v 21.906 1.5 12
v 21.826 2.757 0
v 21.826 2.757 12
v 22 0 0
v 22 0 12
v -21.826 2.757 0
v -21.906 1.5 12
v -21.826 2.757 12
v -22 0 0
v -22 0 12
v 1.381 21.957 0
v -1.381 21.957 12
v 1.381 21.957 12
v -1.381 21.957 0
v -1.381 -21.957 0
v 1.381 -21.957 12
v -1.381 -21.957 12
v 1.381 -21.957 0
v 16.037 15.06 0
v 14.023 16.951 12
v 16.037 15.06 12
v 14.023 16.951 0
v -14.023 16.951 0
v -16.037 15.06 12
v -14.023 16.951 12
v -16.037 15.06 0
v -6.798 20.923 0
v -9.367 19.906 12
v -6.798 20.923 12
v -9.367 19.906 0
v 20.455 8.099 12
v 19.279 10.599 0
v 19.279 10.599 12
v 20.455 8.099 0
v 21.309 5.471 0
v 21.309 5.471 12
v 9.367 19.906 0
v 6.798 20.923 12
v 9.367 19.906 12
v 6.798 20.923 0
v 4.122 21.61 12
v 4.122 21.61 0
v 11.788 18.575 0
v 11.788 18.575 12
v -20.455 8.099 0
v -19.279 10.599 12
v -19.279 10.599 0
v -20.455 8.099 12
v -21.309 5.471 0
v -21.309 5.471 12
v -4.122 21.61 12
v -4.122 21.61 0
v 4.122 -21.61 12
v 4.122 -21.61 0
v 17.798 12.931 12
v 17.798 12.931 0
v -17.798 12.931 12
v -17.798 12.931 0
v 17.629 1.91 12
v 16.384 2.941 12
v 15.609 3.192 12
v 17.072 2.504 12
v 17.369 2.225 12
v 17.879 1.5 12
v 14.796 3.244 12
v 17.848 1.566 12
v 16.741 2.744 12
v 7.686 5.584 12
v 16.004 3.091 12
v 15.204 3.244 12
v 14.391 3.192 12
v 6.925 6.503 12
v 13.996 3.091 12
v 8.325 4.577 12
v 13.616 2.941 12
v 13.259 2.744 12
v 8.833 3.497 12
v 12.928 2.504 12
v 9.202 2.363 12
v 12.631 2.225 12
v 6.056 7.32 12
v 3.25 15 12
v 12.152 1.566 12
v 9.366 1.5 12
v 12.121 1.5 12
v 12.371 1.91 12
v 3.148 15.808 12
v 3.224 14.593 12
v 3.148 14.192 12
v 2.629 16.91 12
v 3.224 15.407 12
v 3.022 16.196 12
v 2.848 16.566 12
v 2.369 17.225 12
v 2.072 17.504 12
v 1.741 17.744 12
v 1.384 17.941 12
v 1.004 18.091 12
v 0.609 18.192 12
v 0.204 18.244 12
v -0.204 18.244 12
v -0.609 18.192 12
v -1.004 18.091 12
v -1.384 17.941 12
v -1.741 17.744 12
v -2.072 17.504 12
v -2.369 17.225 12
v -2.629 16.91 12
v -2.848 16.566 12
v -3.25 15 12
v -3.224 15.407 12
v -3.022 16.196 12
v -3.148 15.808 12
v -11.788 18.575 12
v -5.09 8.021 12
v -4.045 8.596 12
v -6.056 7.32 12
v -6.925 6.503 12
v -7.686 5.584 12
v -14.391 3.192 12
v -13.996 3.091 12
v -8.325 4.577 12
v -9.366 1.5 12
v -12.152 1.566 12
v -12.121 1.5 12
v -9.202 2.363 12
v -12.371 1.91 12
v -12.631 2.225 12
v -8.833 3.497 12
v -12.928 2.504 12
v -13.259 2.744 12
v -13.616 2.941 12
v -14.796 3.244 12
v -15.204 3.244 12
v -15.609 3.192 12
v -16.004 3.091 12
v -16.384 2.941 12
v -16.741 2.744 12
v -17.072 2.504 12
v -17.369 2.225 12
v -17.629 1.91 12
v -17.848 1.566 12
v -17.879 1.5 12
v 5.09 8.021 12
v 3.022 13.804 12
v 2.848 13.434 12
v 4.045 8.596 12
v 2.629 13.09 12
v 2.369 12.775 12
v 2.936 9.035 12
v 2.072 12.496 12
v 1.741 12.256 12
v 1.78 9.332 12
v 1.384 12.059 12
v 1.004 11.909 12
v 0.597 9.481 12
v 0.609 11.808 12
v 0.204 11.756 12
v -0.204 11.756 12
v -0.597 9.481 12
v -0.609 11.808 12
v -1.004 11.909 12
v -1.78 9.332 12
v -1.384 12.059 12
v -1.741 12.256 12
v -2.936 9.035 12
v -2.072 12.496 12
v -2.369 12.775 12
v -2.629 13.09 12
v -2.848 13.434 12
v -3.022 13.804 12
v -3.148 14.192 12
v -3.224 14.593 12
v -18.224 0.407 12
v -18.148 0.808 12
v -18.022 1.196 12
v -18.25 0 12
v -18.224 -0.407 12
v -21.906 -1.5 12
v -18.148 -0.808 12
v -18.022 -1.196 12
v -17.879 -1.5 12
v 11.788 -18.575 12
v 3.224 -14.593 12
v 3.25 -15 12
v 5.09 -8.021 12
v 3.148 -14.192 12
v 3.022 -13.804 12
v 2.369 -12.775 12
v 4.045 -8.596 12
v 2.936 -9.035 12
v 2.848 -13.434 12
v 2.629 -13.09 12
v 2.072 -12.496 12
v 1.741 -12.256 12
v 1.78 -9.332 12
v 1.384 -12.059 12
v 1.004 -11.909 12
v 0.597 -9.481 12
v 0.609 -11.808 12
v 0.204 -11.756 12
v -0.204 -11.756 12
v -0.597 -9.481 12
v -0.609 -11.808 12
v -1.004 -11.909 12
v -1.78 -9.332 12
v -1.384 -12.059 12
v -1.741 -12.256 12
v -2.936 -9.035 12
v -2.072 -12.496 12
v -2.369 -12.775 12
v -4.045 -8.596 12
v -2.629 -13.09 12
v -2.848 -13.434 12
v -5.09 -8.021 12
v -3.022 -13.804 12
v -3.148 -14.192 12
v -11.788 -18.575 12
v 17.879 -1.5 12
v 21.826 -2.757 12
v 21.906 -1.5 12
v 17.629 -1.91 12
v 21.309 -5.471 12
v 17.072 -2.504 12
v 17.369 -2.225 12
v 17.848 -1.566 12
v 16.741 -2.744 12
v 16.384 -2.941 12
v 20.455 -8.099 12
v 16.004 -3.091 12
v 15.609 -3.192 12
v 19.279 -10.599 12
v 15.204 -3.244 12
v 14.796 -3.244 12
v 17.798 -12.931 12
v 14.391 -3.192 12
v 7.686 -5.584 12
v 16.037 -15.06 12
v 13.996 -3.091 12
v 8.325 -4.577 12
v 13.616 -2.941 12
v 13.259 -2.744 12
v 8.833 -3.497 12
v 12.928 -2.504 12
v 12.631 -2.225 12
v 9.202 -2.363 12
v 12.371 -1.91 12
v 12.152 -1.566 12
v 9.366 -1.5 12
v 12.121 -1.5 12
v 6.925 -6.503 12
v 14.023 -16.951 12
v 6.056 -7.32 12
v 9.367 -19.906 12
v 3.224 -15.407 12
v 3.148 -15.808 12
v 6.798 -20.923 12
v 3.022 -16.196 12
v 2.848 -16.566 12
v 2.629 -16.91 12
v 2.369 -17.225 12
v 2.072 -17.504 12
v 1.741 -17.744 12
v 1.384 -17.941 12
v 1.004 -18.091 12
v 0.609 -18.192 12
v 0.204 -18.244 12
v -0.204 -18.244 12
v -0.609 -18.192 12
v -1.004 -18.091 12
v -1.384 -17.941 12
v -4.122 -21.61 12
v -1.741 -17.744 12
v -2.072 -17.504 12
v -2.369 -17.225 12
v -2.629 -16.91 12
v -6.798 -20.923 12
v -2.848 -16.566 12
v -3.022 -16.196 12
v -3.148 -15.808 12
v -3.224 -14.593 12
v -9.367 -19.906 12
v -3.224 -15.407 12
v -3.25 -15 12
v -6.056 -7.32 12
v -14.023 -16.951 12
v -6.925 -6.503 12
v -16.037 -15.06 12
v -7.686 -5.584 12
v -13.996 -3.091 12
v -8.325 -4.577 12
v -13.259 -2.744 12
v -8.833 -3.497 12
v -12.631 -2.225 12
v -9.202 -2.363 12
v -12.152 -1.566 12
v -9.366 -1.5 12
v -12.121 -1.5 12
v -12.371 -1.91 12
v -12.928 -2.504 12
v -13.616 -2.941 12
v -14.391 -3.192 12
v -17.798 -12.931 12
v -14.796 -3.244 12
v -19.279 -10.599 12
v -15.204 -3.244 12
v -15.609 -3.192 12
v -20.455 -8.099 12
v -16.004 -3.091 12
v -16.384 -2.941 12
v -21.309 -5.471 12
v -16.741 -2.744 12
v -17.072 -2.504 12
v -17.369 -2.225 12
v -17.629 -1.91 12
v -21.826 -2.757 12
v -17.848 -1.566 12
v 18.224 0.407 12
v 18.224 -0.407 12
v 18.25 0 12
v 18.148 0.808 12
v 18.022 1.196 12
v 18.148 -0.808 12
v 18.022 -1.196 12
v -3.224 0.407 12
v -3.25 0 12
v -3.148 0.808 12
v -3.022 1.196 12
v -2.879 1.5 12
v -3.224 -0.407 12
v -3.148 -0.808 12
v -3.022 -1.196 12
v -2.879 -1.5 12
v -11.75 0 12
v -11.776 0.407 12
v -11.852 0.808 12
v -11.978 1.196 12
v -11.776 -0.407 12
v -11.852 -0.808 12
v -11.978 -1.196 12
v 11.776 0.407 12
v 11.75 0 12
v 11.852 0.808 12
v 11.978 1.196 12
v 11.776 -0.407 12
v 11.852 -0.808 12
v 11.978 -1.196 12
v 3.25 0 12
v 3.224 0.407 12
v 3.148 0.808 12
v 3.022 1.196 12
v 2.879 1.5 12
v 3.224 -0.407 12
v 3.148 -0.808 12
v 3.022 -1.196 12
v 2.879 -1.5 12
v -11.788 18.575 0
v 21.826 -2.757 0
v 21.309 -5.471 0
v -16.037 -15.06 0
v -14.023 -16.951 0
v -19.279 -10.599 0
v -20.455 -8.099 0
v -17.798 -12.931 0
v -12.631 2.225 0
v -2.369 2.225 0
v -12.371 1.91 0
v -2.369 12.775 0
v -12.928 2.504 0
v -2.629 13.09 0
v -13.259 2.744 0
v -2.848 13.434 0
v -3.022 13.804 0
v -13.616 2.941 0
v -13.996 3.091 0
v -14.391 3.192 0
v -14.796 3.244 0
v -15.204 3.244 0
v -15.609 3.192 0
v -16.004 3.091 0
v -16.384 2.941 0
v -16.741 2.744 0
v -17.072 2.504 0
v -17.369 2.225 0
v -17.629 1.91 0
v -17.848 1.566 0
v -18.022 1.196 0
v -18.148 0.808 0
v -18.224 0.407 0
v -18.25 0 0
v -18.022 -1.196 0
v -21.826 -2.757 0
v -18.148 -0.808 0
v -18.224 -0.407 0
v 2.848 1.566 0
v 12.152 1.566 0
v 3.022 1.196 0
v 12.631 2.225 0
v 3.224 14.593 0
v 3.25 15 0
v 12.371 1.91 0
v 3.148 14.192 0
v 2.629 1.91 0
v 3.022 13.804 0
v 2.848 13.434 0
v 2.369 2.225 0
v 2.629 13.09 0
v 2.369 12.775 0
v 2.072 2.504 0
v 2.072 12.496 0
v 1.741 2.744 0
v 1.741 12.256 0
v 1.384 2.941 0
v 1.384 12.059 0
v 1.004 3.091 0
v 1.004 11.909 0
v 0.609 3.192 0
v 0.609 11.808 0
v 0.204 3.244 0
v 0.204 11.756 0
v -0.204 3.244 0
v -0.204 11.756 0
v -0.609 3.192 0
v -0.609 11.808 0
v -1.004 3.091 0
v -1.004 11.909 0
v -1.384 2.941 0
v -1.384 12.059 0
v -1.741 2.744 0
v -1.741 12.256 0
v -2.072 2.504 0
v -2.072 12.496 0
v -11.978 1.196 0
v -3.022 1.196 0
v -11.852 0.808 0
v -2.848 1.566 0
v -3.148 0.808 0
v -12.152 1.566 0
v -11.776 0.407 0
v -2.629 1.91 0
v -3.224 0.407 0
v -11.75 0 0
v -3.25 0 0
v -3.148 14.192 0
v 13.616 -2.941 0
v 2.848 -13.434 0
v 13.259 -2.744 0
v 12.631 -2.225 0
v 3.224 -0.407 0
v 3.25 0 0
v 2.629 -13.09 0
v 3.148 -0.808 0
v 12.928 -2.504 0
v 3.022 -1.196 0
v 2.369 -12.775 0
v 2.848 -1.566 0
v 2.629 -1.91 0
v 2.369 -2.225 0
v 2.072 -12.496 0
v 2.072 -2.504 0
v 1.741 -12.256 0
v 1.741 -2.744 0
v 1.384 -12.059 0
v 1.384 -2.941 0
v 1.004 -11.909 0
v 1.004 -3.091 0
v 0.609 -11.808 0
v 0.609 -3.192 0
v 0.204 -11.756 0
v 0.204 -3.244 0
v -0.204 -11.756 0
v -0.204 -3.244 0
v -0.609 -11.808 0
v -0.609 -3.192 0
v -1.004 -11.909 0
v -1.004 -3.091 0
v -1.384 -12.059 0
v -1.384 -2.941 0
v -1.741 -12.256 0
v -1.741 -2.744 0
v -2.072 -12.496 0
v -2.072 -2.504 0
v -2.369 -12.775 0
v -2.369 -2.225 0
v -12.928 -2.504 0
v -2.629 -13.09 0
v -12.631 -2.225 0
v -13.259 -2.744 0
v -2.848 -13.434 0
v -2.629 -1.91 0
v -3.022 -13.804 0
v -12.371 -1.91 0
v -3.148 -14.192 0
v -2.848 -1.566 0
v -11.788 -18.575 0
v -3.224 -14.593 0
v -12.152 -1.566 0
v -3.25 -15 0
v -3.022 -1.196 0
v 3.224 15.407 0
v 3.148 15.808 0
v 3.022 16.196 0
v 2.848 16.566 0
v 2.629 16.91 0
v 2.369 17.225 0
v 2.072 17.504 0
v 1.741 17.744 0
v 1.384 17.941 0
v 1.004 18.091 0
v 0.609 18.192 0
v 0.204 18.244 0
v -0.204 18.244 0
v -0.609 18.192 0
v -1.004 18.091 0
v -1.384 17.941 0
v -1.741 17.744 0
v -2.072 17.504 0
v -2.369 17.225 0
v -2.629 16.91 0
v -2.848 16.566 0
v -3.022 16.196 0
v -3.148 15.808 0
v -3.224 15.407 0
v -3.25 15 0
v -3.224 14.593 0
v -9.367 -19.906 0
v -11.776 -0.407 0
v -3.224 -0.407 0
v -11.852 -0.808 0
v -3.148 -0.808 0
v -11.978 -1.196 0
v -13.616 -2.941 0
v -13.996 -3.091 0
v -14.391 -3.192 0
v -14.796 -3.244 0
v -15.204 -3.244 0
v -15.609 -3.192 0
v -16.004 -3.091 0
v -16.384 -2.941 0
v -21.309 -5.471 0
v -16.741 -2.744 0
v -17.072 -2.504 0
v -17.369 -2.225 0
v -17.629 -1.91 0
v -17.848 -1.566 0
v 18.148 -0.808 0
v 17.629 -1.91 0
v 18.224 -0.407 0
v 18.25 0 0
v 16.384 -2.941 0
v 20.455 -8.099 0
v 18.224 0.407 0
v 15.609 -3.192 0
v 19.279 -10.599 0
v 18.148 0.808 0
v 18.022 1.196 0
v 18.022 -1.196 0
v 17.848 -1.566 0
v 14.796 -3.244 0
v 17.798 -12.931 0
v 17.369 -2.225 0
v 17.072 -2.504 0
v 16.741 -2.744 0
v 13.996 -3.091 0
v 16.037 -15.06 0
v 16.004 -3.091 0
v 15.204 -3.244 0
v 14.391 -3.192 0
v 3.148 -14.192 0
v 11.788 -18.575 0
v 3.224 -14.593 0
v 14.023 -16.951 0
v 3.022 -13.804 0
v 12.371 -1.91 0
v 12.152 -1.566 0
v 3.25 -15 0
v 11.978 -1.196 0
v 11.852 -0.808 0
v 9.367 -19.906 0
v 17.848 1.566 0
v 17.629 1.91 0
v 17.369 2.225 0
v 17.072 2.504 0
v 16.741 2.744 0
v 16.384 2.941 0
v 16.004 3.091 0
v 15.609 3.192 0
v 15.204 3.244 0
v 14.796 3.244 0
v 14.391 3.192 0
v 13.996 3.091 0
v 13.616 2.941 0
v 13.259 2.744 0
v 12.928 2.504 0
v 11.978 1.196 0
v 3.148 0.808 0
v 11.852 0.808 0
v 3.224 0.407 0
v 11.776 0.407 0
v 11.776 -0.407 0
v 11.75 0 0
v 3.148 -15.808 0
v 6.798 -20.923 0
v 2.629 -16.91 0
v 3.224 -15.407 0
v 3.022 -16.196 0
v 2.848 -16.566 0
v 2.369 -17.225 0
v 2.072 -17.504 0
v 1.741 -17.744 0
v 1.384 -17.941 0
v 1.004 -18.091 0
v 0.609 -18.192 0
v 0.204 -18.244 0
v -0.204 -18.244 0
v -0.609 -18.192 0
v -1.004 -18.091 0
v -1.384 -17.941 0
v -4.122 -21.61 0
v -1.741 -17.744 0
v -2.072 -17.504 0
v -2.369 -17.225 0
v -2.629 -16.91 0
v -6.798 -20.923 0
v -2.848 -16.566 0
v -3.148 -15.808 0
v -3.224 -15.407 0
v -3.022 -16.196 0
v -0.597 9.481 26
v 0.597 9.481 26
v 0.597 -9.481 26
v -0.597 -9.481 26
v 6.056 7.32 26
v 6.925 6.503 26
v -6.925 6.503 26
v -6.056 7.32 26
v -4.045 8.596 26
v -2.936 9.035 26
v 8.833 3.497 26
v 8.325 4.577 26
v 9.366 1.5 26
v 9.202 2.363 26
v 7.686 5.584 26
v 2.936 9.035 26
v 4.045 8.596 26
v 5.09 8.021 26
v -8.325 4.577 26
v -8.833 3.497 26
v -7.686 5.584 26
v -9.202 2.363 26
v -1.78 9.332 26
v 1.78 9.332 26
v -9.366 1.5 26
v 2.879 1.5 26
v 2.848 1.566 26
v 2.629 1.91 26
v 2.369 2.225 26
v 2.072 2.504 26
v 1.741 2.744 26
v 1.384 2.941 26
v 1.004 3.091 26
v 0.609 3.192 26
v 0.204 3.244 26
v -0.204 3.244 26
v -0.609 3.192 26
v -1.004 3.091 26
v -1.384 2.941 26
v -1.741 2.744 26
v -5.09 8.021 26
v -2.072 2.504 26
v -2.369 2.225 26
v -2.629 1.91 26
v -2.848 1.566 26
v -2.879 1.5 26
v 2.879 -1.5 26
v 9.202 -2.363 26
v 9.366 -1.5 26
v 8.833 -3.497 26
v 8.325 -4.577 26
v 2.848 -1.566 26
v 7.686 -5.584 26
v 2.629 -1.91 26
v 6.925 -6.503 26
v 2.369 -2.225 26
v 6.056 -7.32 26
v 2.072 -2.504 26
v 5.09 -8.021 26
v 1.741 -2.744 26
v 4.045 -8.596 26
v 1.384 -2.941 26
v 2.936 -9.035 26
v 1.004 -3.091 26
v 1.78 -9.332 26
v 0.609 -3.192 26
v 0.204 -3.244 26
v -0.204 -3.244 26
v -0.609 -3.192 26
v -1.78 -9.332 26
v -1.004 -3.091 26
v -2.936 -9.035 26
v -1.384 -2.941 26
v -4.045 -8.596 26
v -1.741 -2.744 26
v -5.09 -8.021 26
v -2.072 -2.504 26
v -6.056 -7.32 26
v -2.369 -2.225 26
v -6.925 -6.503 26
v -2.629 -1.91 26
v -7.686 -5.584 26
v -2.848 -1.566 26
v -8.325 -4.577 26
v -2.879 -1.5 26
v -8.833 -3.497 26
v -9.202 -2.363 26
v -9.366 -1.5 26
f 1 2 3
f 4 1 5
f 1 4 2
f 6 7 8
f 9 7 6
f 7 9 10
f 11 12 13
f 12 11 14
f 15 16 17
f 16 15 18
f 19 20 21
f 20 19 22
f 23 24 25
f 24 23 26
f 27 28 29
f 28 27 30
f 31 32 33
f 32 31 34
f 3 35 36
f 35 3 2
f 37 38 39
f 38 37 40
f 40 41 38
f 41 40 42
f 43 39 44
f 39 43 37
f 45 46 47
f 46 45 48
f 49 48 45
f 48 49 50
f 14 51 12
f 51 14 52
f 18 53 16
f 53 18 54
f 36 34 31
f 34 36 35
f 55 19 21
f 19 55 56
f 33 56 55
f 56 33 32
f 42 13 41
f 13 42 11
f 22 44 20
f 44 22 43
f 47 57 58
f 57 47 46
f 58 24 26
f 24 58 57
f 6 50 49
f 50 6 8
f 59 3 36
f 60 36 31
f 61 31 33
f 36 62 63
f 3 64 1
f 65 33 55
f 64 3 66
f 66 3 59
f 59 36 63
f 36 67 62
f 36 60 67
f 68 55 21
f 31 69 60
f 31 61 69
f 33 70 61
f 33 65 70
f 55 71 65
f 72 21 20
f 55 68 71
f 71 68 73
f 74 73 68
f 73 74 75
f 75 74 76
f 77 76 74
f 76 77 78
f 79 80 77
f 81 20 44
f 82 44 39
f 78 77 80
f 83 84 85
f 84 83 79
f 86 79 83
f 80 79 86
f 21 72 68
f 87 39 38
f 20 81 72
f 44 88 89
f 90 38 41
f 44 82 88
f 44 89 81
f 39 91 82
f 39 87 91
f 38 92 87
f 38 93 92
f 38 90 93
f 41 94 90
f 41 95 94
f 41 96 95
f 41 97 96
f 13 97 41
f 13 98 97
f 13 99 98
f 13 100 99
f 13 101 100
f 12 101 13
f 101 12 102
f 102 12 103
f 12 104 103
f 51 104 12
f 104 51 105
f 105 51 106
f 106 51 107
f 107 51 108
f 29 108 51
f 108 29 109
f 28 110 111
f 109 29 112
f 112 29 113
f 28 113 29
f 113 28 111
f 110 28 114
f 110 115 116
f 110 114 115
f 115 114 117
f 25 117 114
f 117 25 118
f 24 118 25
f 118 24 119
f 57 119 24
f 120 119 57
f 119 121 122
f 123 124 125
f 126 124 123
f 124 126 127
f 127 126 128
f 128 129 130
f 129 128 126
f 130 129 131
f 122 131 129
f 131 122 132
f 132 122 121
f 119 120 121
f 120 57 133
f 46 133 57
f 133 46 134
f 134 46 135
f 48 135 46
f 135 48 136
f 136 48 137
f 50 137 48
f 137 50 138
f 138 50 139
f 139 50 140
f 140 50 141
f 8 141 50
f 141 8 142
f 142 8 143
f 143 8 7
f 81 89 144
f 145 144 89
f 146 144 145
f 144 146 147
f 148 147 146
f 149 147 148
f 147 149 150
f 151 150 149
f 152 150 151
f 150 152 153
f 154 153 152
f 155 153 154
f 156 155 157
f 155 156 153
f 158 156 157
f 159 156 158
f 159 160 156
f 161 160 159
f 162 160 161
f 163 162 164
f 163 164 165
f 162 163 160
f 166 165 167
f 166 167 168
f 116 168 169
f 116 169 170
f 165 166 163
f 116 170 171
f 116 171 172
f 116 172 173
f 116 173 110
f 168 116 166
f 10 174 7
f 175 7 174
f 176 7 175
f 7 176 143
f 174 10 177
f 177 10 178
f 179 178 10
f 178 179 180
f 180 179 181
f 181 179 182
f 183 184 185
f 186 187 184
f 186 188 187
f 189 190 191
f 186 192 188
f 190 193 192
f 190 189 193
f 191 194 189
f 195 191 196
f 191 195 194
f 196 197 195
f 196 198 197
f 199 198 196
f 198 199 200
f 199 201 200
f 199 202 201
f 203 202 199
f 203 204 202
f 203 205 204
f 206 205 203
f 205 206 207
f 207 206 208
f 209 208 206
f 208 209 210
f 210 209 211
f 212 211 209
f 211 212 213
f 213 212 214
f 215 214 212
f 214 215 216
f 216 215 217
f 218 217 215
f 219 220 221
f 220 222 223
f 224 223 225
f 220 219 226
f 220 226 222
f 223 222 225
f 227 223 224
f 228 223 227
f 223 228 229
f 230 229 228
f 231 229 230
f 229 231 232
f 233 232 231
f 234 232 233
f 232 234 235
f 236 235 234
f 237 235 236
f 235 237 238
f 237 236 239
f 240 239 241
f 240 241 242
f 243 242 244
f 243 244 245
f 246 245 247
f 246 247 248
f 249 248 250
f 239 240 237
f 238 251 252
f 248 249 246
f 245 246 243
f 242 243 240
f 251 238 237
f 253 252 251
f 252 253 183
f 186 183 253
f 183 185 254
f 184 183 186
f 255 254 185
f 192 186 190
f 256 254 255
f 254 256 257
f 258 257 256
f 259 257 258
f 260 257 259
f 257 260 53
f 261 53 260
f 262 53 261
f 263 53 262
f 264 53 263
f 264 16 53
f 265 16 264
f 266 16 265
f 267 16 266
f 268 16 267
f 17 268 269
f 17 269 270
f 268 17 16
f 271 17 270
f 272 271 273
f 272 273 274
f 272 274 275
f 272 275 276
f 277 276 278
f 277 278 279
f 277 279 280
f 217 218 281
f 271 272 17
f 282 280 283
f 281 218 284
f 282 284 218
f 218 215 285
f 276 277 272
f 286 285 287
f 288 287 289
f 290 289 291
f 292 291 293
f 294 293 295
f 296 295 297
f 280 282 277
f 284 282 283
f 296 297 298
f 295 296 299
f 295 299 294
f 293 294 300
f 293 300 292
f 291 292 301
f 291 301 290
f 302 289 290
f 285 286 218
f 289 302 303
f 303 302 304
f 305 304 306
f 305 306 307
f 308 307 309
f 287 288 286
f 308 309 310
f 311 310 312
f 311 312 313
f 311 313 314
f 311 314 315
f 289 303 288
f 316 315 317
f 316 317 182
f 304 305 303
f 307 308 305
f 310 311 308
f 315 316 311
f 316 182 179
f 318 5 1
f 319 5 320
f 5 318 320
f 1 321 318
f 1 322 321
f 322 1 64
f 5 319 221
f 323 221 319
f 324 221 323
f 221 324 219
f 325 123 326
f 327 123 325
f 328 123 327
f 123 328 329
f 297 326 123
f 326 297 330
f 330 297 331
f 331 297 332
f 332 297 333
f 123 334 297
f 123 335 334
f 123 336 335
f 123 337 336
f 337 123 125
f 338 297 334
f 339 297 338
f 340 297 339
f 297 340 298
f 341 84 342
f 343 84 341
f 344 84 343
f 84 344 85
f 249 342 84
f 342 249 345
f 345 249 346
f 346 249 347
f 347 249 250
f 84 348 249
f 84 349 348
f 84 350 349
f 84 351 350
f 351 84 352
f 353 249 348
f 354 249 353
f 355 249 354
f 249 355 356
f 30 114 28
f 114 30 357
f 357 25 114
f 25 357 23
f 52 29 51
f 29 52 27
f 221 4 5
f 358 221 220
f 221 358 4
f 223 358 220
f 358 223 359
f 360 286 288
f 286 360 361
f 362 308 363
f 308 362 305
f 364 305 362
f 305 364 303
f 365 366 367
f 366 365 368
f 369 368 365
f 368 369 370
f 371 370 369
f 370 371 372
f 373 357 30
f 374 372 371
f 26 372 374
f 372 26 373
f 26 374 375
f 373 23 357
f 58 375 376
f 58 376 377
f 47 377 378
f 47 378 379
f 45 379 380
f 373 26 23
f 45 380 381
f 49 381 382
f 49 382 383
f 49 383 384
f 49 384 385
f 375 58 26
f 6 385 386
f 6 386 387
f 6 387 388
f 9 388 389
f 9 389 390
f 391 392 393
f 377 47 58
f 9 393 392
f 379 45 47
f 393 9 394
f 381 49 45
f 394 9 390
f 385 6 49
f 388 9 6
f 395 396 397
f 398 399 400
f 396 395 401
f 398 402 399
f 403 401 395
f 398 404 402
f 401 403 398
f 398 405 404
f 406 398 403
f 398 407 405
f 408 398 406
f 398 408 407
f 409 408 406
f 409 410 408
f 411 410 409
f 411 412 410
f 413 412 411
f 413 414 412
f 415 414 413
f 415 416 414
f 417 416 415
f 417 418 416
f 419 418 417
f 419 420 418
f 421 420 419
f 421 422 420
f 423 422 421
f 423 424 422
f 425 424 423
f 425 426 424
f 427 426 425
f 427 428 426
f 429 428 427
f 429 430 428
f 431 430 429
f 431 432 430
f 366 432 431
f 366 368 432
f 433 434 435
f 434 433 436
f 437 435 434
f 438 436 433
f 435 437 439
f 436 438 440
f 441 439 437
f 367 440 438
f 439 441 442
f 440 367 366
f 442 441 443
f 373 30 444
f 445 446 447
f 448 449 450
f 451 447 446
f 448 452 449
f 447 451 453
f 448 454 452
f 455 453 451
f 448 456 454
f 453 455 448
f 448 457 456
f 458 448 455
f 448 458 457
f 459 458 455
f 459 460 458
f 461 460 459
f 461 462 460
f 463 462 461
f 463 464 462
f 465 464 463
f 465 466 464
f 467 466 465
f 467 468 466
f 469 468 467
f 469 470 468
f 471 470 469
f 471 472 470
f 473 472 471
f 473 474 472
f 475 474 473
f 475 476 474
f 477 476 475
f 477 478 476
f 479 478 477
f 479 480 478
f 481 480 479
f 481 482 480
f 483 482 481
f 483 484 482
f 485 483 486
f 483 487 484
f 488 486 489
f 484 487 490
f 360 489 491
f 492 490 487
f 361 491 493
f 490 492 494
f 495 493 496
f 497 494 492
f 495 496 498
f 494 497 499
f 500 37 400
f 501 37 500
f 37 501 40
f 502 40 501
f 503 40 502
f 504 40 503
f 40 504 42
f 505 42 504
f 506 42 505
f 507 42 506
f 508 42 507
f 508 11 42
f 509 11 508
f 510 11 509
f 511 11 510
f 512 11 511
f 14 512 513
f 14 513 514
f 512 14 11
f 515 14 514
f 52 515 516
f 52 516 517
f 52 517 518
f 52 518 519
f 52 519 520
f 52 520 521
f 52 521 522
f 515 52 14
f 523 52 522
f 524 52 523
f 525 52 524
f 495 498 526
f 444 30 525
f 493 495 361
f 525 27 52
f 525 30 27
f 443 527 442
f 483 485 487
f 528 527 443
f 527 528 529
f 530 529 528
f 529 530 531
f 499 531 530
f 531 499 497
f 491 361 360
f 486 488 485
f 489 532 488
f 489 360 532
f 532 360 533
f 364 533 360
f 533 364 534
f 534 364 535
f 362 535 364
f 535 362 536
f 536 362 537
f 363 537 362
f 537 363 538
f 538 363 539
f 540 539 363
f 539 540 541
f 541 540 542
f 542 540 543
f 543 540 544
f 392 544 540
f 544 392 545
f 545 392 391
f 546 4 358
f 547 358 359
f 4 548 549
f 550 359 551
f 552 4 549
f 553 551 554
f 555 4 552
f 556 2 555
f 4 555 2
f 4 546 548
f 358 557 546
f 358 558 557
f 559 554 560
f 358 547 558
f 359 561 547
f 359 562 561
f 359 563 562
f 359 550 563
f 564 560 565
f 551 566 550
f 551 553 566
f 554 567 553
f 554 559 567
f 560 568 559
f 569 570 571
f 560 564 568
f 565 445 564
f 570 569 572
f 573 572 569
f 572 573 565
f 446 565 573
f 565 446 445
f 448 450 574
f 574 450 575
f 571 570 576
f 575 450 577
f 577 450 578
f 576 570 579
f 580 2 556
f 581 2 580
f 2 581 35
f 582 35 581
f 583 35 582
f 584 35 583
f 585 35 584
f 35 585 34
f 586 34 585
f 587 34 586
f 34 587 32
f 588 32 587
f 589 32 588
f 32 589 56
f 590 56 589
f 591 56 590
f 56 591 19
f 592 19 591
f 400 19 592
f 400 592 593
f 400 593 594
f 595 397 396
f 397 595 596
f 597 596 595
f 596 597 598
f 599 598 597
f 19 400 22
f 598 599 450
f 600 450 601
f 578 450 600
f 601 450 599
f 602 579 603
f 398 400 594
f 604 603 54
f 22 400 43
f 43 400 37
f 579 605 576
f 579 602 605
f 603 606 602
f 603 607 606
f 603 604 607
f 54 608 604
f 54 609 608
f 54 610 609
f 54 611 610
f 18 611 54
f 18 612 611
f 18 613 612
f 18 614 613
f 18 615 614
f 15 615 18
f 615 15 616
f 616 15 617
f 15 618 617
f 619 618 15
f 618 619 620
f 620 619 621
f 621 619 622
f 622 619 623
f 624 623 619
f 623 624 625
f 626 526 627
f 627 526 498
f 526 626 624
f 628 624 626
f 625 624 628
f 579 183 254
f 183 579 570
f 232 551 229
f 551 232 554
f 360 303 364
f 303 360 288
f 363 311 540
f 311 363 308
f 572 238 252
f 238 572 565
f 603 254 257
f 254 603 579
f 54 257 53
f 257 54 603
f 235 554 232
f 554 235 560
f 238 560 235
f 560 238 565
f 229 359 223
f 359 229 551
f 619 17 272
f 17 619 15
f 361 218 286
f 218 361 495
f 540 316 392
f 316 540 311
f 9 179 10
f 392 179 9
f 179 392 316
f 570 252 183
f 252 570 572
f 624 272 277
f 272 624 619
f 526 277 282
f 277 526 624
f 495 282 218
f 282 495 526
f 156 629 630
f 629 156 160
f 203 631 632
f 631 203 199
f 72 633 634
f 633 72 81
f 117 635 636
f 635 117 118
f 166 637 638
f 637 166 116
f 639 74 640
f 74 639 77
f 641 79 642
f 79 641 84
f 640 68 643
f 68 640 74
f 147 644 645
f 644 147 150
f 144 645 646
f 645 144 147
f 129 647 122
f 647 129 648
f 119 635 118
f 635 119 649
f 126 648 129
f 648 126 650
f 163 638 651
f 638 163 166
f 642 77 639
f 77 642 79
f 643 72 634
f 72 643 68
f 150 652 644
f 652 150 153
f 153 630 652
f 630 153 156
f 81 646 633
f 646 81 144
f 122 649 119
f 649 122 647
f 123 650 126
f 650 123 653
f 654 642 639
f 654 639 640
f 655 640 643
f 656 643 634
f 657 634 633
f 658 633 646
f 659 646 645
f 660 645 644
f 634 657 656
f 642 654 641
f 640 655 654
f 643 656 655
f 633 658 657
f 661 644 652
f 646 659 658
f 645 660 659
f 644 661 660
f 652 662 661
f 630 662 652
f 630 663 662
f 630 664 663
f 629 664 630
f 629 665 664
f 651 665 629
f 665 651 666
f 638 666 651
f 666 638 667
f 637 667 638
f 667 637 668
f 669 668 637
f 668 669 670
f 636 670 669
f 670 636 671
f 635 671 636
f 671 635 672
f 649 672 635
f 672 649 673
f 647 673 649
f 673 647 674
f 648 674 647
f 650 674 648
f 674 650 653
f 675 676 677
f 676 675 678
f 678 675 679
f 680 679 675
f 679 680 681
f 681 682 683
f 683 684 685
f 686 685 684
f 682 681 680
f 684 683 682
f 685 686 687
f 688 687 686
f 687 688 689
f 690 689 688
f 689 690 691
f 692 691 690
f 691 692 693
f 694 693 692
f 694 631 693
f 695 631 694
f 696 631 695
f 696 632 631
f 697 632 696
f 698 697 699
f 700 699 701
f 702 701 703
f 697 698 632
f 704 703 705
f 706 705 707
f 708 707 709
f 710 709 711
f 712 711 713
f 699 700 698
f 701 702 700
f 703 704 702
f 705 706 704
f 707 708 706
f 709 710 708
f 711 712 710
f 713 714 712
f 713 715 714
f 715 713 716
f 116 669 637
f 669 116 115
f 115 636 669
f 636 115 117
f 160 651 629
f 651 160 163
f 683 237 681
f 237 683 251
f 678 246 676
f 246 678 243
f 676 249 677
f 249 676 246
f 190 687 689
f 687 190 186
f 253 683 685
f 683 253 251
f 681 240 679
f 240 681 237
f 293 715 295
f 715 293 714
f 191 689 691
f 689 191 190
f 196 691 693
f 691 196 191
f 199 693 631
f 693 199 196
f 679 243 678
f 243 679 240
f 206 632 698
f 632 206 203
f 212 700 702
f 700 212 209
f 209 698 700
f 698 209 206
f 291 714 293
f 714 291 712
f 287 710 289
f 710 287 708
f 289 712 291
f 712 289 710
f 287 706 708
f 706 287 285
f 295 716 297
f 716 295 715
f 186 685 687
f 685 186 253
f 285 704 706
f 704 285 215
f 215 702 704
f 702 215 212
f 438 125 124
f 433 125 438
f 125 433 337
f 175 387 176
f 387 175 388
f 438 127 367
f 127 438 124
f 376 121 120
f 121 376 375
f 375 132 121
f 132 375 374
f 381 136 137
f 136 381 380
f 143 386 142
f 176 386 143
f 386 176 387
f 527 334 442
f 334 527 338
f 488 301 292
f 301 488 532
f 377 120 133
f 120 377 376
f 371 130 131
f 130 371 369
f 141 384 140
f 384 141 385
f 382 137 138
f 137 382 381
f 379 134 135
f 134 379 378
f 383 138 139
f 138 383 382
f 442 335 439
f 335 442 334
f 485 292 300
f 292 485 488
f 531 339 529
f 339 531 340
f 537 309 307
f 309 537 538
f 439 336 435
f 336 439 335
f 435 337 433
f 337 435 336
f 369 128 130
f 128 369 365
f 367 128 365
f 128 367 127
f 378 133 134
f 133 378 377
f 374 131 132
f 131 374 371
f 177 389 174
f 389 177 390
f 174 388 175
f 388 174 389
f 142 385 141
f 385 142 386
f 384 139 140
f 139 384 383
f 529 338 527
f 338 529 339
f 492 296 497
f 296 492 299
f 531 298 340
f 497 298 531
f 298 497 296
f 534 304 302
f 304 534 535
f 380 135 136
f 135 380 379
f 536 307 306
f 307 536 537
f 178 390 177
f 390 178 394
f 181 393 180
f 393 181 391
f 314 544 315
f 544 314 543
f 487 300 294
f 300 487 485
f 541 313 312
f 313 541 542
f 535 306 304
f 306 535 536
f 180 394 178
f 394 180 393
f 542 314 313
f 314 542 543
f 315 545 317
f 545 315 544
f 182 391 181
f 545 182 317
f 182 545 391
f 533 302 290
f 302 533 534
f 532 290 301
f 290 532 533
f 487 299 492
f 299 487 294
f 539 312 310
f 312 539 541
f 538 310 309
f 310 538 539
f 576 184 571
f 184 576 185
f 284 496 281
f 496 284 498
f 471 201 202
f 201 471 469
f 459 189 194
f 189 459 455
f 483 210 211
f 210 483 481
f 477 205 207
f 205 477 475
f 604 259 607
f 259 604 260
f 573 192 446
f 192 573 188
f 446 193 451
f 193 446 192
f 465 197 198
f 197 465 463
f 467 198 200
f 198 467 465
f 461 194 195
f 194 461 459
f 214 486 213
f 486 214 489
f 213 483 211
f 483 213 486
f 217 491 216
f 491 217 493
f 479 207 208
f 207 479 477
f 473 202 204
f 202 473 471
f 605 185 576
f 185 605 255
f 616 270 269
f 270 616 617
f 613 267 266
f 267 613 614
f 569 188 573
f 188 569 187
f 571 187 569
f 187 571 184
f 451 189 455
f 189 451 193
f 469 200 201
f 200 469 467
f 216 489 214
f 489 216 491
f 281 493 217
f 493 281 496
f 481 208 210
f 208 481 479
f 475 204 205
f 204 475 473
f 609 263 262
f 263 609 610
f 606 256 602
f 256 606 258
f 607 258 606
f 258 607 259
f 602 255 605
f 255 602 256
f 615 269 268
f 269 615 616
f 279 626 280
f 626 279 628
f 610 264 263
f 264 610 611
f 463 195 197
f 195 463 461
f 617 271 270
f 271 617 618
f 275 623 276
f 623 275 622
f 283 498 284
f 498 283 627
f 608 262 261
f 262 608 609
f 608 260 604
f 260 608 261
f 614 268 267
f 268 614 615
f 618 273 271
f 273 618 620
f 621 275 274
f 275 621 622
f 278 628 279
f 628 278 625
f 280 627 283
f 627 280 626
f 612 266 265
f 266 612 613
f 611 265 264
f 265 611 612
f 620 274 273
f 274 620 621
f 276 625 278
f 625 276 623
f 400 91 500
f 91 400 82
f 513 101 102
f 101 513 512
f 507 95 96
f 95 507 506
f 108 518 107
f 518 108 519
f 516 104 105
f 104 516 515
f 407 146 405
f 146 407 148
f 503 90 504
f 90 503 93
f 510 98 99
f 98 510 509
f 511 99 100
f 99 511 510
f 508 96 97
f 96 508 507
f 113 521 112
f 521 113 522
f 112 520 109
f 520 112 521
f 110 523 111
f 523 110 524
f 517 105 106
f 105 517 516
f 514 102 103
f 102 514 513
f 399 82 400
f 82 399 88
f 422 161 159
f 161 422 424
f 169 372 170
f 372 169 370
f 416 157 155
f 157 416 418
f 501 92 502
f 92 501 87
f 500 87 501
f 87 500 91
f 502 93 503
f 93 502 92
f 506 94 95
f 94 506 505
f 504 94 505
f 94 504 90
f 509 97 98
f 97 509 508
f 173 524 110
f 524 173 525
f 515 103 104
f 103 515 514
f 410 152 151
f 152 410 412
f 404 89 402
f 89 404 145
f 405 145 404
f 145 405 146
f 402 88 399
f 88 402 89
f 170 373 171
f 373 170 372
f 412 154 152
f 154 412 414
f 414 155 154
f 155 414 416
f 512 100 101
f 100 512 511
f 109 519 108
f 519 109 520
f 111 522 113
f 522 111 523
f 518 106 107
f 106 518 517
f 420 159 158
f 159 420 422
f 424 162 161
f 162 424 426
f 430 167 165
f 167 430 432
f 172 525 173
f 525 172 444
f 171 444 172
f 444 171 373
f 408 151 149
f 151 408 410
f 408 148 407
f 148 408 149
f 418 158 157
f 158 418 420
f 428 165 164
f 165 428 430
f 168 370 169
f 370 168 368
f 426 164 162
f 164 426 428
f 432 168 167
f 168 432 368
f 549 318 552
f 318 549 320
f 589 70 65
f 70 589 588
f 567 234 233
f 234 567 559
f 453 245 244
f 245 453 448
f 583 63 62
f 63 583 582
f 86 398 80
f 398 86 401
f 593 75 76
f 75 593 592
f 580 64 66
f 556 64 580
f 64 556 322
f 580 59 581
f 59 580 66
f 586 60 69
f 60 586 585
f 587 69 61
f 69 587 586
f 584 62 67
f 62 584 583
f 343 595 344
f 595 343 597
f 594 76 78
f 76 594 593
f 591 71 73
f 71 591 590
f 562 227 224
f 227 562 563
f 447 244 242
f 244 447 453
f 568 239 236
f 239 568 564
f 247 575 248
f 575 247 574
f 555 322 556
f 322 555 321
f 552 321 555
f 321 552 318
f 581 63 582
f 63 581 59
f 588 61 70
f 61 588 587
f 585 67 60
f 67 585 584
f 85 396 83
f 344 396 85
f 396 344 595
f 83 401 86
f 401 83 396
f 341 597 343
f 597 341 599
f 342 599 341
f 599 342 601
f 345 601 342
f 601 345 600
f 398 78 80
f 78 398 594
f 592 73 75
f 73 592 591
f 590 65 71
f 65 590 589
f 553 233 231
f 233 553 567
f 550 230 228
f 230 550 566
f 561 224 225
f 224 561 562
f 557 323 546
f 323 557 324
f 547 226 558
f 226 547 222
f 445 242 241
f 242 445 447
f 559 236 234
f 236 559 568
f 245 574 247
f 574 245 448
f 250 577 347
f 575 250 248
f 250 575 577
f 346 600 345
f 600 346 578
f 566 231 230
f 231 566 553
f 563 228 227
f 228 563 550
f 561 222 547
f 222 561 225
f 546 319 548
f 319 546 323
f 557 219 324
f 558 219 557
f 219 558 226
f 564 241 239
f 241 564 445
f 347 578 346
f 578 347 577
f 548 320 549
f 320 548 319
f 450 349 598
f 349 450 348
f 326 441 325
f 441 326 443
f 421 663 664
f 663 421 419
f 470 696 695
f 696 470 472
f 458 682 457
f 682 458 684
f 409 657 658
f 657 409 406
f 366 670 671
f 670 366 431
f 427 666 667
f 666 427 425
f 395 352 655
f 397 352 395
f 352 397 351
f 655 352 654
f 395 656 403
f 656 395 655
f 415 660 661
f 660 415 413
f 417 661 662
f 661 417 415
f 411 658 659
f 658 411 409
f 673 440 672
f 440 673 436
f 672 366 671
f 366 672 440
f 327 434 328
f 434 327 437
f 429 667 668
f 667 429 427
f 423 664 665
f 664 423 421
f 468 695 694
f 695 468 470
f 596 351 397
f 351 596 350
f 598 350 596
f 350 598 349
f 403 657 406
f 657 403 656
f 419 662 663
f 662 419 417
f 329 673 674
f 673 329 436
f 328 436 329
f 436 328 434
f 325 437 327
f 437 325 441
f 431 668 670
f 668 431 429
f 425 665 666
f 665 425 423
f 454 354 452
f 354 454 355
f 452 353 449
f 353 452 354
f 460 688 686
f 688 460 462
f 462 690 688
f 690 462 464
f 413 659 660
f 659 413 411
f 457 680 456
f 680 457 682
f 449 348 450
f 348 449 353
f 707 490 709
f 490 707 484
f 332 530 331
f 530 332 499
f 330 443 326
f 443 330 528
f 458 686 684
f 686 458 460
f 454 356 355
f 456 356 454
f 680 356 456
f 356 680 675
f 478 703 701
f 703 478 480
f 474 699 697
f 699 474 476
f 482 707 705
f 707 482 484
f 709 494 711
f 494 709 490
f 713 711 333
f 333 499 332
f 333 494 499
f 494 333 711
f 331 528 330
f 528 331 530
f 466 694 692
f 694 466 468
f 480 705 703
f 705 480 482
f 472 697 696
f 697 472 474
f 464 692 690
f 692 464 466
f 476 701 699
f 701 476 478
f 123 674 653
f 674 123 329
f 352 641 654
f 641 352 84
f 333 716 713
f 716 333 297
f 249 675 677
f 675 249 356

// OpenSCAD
$fn = 50;


difference() {
	union() {
		translate(v = [0, 0, 0.0000000000]) {
			rotate(a = [0, 0, 0]) {
				cylinder(h = 12, r = 22.0000000000);
			}
		}
		translate(v = [0, 0, 6.0000000000]) {
			rotate(a = [0, 0, 0]) {
				cylinder(h = 20, r = 9.5000000000);
			}
		}
	}
	union() {
		translate(v = [-15.0000000000, 0.0000000000, -125.0000000000]) {
			rotate(a = [0, 0, 0]) {
				cylinder(h = 250, r = 3.2500000000);
			}
		}
		translate(v = [0.0000000000, -15.0000000000, -125.0000000000]) {
			rotate(a = [0, 0, 0]) {
				cylinder(h = 250, r = 3.2500000000);
			}
		}
		translate(v = [0.0000000000, 15.0000000000, -125.0000000000]) {
			rotate(a = [0, 0, 0]) {
				cylinder(h = 250, r = 3.2500000000);
			}
		}
		translate(v = [15.0000000000, 0.0000000000, -125.0000000000]) {
			rotate(a = [0, 0, 0]) {
				cylinder(h = 250, r = 3.2500000000);
			}
		}
		translate(v = [0.0000000000, 0.0000000000, -125.0000000000]) {
			rotate(a = [0, 0, 0]) {
				cylinder(h = 250, r = 3.2500000000);
			}
		}
		translate(v = [-27.0000000000, -1.5000000000, 12]) {
			rotate(a = [0, 0, 0]) {
				cube(size = [54, 3, 20]);
			}
		}
	}
}
